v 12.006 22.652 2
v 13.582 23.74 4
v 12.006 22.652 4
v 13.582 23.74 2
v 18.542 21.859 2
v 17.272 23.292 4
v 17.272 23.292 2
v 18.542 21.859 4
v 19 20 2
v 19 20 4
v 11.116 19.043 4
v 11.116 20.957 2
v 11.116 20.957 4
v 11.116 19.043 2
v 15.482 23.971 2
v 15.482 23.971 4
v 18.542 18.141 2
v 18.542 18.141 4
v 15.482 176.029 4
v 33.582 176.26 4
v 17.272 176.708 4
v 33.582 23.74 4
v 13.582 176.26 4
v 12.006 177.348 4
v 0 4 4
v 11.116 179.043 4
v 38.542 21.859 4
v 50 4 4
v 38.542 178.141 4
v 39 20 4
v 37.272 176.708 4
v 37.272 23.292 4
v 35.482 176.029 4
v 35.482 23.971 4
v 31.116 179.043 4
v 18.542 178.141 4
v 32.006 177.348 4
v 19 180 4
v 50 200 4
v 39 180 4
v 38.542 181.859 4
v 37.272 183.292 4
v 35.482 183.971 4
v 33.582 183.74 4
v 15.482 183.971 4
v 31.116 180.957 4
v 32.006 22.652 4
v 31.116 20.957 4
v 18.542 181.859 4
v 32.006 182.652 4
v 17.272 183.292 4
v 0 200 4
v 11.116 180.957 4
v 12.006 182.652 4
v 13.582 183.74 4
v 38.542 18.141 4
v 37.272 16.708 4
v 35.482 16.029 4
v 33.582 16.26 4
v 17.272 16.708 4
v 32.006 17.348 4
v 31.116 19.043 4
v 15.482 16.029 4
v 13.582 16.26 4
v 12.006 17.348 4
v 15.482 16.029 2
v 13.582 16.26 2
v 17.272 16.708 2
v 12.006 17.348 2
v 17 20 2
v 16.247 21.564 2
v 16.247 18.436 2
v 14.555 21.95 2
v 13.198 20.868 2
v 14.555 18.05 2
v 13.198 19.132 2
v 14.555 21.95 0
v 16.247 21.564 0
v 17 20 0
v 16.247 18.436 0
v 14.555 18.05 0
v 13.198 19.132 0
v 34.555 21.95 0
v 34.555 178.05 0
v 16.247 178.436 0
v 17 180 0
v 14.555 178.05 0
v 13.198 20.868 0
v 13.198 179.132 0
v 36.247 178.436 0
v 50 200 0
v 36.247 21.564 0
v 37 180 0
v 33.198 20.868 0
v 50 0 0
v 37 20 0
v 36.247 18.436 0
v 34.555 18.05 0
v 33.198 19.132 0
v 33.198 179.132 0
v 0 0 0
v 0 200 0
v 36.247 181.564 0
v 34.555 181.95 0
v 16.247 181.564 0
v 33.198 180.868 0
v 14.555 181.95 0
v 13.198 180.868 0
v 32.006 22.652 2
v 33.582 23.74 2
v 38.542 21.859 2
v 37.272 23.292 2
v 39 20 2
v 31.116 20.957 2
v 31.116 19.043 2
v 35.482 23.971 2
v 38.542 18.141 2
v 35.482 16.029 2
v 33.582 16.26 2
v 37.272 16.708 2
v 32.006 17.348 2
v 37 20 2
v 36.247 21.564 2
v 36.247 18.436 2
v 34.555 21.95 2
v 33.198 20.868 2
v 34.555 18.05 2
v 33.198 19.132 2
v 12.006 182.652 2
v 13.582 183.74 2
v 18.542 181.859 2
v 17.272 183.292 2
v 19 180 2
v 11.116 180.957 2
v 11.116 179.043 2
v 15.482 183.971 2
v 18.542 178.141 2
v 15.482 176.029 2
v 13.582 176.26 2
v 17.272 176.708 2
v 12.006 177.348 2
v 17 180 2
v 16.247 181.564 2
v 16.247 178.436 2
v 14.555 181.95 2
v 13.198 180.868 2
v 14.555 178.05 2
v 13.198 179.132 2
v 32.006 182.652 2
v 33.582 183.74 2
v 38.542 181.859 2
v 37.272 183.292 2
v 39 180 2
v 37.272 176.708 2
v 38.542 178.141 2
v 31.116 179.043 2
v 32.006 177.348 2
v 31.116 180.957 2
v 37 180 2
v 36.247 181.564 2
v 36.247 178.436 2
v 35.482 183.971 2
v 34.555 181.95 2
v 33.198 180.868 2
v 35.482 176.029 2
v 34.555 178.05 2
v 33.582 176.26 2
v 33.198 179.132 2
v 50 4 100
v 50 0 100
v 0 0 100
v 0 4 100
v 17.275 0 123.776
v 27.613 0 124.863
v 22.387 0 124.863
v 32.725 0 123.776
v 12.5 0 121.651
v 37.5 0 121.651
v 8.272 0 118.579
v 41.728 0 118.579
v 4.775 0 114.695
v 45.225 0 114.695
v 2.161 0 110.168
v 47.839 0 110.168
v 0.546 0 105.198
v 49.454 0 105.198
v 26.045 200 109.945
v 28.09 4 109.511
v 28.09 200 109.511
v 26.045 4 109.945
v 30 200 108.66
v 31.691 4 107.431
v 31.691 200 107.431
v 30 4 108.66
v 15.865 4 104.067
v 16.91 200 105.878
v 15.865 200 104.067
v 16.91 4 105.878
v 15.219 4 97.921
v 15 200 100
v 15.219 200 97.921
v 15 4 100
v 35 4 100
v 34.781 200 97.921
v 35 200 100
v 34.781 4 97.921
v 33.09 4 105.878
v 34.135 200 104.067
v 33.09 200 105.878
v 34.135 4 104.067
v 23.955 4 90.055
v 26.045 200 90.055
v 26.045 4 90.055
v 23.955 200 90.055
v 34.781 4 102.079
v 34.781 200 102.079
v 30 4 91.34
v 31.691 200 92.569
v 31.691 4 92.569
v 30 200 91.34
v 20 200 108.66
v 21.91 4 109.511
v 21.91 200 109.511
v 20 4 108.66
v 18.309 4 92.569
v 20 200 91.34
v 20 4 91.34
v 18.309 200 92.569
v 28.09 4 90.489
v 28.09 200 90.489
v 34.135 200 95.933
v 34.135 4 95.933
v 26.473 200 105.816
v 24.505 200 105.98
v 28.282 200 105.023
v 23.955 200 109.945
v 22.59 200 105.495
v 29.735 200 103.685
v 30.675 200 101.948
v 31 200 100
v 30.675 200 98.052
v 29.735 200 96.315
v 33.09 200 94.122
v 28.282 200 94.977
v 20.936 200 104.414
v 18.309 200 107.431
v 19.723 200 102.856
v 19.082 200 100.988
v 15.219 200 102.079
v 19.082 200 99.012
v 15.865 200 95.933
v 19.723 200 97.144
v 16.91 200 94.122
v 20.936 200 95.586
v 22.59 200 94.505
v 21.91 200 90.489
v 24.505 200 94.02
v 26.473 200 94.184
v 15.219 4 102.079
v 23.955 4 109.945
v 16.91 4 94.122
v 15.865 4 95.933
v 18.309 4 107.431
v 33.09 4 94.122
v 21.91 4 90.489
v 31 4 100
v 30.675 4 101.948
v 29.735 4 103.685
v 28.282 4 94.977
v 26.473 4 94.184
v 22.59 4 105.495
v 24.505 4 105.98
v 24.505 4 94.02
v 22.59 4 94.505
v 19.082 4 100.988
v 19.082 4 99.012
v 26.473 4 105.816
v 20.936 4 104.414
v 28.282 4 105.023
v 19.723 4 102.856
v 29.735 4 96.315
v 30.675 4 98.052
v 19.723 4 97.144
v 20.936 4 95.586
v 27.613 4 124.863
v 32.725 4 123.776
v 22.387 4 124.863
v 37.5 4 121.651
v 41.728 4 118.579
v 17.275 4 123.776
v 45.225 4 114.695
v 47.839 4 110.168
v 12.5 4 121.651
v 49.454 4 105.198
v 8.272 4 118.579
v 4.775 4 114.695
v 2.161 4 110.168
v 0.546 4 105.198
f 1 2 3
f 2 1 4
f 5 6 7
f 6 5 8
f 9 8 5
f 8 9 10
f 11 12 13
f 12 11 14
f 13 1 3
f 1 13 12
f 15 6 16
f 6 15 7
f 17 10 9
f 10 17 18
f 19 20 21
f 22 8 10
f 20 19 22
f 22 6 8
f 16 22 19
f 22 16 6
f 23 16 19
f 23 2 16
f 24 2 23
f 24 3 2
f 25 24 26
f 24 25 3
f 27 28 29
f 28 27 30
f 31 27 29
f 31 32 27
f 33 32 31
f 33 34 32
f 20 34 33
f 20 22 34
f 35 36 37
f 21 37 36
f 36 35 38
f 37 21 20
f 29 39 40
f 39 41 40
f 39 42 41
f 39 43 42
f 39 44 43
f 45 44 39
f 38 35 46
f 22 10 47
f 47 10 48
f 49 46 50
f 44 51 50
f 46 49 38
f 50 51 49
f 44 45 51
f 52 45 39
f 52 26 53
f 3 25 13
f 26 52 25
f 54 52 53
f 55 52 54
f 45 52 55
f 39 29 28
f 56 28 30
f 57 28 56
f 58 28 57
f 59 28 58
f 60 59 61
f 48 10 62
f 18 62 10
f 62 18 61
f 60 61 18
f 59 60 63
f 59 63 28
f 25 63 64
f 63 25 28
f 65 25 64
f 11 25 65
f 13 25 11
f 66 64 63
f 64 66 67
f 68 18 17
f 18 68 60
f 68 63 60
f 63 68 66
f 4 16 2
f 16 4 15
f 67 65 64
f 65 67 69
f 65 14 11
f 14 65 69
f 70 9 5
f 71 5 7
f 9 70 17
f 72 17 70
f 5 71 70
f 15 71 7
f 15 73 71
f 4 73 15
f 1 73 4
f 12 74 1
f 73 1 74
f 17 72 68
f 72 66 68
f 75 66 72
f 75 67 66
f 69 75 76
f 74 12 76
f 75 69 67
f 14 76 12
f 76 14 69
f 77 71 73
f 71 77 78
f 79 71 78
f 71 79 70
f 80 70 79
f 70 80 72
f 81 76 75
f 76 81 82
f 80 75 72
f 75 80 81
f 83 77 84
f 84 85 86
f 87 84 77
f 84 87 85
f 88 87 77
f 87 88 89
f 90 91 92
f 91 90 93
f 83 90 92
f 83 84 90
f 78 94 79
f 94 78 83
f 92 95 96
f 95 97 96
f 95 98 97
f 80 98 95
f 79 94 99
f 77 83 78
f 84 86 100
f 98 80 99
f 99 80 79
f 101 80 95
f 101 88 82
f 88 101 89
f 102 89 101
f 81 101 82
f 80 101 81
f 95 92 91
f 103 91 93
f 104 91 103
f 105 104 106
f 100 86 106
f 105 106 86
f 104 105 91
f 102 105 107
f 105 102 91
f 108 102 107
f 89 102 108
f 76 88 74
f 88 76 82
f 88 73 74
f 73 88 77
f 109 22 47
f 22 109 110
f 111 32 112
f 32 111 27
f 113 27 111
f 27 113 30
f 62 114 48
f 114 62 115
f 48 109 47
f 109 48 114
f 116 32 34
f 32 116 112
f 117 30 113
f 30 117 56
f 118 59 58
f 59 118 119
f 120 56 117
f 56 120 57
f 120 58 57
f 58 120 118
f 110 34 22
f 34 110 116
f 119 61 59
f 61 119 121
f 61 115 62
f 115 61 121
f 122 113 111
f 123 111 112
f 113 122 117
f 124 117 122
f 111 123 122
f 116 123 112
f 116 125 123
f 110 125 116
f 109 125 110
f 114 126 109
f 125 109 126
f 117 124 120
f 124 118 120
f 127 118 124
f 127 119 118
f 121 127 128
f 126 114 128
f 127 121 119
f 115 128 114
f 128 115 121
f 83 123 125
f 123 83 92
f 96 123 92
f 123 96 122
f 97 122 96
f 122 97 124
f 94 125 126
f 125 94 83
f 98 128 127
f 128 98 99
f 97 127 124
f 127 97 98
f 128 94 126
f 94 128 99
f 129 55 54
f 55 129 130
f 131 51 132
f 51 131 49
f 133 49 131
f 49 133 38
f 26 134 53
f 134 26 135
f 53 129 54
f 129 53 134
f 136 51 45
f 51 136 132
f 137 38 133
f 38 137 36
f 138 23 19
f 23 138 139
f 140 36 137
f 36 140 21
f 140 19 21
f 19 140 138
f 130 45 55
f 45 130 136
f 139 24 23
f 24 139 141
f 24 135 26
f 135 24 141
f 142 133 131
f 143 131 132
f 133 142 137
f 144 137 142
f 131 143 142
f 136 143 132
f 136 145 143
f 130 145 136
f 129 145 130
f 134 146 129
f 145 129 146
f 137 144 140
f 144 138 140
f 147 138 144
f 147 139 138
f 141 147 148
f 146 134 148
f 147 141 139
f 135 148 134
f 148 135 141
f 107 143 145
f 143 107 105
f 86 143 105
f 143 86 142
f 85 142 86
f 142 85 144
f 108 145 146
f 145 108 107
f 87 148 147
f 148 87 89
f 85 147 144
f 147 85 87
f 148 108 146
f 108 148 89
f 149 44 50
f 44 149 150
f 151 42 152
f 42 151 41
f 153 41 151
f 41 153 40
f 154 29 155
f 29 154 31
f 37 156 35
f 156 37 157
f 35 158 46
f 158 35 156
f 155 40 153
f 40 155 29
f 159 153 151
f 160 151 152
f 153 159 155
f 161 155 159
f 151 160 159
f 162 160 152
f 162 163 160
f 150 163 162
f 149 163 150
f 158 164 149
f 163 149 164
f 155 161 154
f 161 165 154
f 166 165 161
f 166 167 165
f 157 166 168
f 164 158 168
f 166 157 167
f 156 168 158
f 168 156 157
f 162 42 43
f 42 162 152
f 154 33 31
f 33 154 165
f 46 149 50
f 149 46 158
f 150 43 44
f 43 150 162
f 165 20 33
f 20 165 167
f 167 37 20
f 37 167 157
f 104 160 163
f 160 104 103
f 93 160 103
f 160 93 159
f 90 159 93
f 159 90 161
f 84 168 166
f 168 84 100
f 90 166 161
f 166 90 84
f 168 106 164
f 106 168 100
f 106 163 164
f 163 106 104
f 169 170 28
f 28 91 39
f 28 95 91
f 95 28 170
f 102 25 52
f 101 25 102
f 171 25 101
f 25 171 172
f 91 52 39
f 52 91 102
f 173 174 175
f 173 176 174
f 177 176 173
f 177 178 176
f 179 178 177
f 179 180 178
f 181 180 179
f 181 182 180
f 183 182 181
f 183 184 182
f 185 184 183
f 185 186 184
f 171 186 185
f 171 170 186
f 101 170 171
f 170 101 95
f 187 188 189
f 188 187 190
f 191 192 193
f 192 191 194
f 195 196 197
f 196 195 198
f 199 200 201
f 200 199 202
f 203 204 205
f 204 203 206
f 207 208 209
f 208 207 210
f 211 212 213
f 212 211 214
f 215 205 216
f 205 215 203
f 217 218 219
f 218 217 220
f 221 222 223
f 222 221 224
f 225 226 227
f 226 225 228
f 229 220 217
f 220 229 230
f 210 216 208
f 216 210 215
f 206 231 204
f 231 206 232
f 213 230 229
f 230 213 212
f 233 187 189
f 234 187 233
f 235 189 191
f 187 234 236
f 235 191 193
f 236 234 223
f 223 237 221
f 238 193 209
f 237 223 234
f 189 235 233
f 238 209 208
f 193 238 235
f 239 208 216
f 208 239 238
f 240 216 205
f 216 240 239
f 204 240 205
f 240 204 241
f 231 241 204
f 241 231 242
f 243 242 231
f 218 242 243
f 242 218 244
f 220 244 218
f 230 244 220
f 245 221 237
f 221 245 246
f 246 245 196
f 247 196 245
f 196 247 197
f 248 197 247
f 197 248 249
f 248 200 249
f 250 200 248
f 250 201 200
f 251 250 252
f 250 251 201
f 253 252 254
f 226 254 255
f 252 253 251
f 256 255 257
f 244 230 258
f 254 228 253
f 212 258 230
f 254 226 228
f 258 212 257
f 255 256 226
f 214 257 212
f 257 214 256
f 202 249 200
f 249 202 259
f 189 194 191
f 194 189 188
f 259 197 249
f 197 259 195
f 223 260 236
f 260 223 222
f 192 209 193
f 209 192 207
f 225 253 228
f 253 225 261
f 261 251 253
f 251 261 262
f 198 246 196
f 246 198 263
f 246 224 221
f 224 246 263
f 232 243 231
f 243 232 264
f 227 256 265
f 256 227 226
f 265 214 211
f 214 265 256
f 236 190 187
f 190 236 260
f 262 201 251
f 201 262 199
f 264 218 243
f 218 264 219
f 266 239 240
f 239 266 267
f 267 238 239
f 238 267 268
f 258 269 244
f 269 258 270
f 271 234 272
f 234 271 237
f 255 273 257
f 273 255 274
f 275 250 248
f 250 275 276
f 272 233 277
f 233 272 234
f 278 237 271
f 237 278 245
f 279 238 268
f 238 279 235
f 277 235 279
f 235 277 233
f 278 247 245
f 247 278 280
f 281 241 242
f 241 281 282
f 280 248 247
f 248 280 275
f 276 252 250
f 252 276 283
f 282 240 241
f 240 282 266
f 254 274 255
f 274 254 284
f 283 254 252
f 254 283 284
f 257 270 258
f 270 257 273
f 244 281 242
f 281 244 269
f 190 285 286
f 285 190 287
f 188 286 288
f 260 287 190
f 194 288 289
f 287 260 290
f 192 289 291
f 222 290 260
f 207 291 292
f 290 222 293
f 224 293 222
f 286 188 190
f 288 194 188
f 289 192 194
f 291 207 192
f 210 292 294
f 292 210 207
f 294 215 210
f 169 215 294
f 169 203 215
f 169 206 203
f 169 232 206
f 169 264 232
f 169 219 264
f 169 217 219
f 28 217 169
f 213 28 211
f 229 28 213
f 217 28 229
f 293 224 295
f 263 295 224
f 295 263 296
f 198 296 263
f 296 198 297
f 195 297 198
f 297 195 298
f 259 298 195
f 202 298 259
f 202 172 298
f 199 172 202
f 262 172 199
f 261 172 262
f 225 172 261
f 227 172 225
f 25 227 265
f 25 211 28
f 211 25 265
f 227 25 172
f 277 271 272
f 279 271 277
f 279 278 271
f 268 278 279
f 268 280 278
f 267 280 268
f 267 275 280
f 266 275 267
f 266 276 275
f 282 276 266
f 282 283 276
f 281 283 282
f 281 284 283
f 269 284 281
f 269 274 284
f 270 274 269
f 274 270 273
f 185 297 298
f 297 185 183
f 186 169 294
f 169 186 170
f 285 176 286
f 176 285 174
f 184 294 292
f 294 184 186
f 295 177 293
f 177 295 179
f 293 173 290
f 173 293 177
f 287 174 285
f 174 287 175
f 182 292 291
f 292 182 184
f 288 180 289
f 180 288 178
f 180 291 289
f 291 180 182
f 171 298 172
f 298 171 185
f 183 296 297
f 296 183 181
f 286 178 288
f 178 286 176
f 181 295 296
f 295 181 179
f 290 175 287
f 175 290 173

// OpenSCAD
// The platform that screws on the bottom side of the cabinet
difference() {
  cube([50, 200, 4]);
  
  // Screw 1 close to the side wall  
  translate([15, 20, 0]) {
    translate([0, 0, 2]) cylinder(2, 4, 4);
    cylinder(3, 2, 2);
  }
  
  // Screw 2 close to the side wall  
  translate([35, 20, 0]) {
    translate([0, 0, 2]) cylinder(2, 4, 4);
    cylinder(3, 2, 2);
  }
  
  // Screw 1 away from the side wall  
  translate([15, 180, 0]) {
    translate([0, 0, 2]) cylinder(2, 4, 4);
    cylinder(3, 2, 2);
  }
  
  // Screw 2 away from the side wall  
  translate([35, 180, 0]) {
    translate([0, 0, 2]) cylinder(2, 4, 4);
    cylinder(3, 2, 2);
  }
}


// The side wall that connects the pole and the base platform
cube([50, 4, 100]);

// The rounded corner on the side wall that is concentric with the pole
translate([25, 4, 100]) rotate([90, 0, 0]) cylinder(4, 25, 25);

// The protruding pole the paper roll goes around
translate([25, 200, 100]) rotate([90, 0, 0]) difference() {
  cylinder(200, 10, 10);
  cylinder(200, 6, 6);    
}
